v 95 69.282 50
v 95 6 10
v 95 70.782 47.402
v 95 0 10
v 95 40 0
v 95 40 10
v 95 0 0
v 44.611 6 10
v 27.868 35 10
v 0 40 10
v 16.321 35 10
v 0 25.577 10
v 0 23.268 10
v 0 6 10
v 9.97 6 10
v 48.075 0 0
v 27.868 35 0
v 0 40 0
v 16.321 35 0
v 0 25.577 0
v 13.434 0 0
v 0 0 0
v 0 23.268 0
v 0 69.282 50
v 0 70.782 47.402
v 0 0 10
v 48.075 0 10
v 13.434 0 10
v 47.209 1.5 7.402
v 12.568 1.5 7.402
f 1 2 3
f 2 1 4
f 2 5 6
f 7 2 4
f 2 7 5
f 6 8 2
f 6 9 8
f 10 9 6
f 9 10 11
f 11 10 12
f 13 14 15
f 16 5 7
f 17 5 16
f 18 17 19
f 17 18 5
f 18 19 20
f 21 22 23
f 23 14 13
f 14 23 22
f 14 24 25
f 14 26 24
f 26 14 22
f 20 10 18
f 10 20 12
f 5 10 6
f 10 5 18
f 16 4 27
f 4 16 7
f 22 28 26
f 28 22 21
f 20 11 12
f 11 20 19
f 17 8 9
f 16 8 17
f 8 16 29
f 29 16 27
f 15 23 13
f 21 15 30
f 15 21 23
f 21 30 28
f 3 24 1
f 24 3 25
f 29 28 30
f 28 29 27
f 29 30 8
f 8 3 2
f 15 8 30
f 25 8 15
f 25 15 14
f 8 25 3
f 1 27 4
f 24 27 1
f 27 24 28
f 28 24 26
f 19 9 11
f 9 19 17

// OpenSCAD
// VERSÃO ALTERNATIVA MAIS SIMPLES (descomente para usar)
largura_tele = 75;       // Largura do telemóvel (mm)
altura_tele = 150;       // Altura do telemóvel (mm)
espessura_tele = 10;     // Espessura máxima do telemóvel (mm)
angulo_inclinacao = 60;  // Ângulo de inclinação (graus)

difference() {
    color("Yellow")
    // Base principal com inclinação
    cube([largura_tele + 20, 40, 10]);
    color("Yellow")
    // Corte angular
    translate([-1, 25, -1])
    rotate([0, 0, -angulo_inclinacao])
    cube([largura_tele + 22, 30, 12]);
}
color("Yellow")
// Suporte traseiro
translate([0, 0, 10])
rotate([-angulo_inclinacao, 0, 0])
cube([largura_tele + 20, 3, 80]);
color("Yellow")
// Limite inferior
translate([5, 35, 0])
cube([largura_tele + 10, 5, 10]);
